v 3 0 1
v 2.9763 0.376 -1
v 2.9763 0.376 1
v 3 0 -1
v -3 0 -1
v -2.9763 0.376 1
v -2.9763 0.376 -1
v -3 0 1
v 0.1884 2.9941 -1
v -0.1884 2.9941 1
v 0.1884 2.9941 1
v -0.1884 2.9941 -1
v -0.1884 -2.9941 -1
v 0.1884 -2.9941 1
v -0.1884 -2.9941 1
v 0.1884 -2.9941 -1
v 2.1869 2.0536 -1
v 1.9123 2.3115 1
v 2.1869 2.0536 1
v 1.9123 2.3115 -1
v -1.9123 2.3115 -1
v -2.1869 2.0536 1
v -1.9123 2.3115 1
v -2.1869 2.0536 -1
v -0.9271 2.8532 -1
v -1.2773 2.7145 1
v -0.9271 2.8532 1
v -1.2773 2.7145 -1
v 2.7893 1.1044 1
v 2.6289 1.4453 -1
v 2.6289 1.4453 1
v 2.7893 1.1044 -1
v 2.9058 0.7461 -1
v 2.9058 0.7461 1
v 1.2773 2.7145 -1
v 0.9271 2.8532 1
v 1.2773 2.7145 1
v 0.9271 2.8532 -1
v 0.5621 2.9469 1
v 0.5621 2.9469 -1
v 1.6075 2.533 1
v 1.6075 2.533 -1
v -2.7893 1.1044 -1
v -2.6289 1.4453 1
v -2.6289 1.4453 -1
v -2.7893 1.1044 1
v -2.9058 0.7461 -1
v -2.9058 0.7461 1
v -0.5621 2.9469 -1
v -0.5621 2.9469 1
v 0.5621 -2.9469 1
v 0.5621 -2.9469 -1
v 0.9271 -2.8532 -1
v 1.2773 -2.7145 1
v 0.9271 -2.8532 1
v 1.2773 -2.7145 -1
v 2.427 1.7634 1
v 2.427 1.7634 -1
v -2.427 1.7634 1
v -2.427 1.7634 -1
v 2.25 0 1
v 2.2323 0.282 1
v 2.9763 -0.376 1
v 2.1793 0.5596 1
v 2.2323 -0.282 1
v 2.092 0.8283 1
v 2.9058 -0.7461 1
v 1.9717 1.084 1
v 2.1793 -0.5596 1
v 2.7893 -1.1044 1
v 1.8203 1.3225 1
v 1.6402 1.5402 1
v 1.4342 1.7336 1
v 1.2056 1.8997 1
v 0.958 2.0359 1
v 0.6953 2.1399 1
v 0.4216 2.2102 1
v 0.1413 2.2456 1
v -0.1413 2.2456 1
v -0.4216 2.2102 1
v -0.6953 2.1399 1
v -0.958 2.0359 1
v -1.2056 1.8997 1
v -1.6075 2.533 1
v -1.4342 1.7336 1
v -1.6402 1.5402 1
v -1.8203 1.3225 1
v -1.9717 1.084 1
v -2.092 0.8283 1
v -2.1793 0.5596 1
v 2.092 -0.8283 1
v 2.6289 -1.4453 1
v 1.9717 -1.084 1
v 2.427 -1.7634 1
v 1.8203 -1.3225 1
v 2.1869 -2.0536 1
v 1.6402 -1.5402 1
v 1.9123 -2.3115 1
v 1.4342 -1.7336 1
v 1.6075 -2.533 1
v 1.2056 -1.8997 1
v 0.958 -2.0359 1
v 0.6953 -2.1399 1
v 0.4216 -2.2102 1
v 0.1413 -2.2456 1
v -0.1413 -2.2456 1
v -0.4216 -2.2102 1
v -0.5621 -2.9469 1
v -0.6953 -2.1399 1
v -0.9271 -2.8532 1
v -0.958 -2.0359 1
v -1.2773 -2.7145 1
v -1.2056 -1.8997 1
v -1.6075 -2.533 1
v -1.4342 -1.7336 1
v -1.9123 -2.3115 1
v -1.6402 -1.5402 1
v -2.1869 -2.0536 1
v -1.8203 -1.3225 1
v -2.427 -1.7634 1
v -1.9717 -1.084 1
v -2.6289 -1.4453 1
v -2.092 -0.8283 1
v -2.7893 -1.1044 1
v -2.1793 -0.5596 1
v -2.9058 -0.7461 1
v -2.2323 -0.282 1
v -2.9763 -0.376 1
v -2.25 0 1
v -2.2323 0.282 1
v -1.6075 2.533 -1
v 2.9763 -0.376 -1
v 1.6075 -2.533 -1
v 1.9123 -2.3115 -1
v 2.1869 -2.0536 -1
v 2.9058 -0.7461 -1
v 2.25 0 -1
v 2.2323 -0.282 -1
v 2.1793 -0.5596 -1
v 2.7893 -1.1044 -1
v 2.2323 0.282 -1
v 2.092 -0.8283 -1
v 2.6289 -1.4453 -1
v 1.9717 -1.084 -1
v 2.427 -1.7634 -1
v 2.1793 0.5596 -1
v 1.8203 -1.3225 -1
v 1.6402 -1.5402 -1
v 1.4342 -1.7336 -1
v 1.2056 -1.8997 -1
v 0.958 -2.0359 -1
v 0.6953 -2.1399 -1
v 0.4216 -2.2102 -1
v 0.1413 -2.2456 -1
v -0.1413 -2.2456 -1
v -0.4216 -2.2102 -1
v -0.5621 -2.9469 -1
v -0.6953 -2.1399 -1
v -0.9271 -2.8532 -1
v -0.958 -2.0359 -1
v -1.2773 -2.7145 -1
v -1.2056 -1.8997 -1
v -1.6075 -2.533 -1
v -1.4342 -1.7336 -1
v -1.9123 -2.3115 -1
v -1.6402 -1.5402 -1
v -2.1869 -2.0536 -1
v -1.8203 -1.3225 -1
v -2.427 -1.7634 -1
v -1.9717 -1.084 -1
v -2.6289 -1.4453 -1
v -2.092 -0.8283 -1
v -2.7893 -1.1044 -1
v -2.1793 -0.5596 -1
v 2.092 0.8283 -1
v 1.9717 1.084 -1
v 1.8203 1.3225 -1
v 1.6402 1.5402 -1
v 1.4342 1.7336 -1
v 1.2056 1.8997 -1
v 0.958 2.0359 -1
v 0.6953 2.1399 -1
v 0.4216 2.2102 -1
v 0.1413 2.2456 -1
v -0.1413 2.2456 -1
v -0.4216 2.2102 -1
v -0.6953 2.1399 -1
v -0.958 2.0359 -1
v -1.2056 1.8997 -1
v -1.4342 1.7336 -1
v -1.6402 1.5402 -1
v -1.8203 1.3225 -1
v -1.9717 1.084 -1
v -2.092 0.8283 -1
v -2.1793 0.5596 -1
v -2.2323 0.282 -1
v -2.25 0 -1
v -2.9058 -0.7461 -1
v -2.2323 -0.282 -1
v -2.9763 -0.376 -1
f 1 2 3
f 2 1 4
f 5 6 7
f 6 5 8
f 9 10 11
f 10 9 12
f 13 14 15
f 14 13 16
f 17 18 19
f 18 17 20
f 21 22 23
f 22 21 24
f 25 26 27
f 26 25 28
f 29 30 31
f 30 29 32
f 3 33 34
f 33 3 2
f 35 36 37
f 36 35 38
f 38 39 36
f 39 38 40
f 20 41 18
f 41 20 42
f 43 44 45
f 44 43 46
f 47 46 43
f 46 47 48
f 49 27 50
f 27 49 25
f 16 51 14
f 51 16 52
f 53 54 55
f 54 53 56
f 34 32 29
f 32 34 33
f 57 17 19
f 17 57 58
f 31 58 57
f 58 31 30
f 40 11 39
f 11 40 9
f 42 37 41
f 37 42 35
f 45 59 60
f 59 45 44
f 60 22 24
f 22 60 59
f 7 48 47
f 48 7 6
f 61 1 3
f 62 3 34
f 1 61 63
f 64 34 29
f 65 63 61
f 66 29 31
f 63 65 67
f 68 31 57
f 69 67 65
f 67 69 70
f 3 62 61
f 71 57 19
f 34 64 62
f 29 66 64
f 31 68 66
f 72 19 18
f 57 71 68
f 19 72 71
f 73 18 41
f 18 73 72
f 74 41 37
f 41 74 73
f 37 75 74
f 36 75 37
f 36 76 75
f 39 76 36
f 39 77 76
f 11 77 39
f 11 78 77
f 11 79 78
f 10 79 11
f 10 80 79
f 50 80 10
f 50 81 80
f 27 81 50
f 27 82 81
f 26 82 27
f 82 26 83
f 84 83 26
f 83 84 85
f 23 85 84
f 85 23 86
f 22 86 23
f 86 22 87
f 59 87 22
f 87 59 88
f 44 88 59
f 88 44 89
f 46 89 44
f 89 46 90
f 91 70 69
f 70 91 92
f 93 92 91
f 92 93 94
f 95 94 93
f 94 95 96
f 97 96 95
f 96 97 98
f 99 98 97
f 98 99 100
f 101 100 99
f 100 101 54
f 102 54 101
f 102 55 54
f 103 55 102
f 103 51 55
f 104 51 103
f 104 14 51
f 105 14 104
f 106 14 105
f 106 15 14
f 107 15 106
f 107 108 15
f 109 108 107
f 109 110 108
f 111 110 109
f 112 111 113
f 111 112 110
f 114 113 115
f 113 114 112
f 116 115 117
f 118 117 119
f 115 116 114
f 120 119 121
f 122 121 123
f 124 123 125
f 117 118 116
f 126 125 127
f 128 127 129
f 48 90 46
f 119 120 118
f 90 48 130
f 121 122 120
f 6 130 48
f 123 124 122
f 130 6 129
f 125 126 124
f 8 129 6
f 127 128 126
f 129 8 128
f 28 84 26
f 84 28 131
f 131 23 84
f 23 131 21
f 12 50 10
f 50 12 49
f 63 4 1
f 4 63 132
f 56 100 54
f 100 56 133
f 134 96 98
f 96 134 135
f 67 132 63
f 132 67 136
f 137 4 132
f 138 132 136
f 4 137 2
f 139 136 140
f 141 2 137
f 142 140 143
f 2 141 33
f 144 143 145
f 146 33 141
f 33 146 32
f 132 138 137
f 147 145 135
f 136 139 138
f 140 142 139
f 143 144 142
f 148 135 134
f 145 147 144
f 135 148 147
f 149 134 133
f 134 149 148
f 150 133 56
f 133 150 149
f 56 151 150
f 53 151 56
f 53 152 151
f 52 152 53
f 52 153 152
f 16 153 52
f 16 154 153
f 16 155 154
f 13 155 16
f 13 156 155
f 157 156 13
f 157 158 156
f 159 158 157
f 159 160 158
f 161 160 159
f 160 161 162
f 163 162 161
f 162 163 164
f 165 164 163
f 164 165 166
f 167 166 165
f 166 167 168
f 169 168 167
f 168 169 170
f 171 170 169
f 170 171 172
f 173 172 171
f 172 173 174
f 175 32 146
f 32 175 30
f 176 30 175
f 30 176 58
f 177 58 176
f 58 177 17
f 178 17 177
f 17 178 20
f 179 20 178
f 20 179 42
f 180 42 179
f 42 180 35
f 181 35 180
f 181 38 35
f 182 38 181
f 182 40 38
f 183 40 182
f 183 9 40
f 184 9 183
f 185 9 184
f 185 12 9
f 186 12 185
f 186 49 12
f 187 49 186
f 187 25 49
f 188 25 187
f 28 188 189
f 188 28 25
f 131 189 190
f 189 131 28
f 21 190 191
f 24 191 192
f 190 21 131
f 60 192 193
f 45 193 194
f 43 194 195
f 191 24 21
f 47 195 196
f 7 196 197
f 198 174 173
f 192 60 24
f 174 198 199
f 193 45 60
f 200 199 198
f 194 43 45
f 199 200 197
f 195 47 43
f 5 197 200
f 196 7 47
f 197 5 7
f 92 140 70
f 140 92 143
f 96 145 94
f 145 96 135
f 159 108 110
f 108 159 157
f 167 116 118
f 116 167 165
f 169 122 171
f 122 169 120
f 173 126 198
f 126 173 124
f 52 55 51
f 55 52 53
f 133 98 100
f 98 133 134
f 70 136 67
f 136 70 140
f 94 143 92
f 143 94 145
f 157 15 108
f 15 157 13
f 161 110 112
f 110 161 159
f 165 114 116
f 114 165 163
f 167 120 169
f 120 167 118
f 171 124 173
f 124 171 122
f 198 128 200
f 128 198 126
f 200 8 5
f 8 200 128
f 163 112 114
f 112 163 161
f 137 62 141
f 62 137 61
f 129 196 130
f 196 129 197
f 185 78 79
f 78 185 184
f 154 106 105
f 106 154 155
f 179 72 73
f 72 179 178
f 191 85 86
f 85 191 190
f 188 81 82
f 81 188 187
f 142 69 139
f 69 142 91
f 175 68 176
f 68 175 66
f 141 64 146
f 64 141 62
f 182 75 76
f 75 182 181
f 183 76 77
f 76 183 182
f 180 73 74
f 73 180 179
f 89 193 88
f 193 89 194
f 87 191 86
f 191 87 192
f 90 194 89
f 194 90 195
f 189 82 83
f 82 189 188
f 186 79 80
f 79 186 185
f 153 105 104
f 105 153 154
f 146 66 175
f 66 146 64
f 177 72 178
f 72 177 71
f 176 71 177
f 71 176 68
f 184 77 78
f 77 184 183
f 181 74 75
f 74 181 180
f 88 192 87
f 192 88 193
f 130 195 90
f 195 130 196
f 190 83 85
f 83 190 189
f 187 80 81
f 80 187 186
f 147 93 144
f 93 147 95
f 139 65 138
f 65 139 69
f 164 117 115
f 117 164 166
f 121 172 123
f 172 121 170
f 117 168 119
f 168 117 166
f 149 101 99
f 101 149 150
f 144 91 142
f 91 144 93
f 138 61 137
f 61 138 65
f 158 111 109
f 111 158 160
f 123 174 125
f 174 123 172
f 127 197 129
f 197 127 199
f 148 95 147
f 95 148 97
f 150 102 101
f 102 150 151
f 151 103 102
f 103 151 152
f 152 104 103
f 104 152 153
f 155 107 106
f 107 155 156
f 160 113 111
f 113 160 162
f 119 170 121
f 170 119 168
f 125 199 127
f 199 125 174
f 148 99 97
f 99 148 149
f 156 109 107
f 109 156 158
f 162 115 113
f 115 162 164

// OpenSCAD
$fn = 50;


difference() {
	union() {
		translate(v = [0, 0, -1.0000000000]) {
			cylinder(h = 2, r = 3.0000000000);
		}
	}
	union() {
		translate(v = [0, 0, -100.0000000000]) {
			cylinder(h = 200, r = 2.2500000000);
		}
	}
}
